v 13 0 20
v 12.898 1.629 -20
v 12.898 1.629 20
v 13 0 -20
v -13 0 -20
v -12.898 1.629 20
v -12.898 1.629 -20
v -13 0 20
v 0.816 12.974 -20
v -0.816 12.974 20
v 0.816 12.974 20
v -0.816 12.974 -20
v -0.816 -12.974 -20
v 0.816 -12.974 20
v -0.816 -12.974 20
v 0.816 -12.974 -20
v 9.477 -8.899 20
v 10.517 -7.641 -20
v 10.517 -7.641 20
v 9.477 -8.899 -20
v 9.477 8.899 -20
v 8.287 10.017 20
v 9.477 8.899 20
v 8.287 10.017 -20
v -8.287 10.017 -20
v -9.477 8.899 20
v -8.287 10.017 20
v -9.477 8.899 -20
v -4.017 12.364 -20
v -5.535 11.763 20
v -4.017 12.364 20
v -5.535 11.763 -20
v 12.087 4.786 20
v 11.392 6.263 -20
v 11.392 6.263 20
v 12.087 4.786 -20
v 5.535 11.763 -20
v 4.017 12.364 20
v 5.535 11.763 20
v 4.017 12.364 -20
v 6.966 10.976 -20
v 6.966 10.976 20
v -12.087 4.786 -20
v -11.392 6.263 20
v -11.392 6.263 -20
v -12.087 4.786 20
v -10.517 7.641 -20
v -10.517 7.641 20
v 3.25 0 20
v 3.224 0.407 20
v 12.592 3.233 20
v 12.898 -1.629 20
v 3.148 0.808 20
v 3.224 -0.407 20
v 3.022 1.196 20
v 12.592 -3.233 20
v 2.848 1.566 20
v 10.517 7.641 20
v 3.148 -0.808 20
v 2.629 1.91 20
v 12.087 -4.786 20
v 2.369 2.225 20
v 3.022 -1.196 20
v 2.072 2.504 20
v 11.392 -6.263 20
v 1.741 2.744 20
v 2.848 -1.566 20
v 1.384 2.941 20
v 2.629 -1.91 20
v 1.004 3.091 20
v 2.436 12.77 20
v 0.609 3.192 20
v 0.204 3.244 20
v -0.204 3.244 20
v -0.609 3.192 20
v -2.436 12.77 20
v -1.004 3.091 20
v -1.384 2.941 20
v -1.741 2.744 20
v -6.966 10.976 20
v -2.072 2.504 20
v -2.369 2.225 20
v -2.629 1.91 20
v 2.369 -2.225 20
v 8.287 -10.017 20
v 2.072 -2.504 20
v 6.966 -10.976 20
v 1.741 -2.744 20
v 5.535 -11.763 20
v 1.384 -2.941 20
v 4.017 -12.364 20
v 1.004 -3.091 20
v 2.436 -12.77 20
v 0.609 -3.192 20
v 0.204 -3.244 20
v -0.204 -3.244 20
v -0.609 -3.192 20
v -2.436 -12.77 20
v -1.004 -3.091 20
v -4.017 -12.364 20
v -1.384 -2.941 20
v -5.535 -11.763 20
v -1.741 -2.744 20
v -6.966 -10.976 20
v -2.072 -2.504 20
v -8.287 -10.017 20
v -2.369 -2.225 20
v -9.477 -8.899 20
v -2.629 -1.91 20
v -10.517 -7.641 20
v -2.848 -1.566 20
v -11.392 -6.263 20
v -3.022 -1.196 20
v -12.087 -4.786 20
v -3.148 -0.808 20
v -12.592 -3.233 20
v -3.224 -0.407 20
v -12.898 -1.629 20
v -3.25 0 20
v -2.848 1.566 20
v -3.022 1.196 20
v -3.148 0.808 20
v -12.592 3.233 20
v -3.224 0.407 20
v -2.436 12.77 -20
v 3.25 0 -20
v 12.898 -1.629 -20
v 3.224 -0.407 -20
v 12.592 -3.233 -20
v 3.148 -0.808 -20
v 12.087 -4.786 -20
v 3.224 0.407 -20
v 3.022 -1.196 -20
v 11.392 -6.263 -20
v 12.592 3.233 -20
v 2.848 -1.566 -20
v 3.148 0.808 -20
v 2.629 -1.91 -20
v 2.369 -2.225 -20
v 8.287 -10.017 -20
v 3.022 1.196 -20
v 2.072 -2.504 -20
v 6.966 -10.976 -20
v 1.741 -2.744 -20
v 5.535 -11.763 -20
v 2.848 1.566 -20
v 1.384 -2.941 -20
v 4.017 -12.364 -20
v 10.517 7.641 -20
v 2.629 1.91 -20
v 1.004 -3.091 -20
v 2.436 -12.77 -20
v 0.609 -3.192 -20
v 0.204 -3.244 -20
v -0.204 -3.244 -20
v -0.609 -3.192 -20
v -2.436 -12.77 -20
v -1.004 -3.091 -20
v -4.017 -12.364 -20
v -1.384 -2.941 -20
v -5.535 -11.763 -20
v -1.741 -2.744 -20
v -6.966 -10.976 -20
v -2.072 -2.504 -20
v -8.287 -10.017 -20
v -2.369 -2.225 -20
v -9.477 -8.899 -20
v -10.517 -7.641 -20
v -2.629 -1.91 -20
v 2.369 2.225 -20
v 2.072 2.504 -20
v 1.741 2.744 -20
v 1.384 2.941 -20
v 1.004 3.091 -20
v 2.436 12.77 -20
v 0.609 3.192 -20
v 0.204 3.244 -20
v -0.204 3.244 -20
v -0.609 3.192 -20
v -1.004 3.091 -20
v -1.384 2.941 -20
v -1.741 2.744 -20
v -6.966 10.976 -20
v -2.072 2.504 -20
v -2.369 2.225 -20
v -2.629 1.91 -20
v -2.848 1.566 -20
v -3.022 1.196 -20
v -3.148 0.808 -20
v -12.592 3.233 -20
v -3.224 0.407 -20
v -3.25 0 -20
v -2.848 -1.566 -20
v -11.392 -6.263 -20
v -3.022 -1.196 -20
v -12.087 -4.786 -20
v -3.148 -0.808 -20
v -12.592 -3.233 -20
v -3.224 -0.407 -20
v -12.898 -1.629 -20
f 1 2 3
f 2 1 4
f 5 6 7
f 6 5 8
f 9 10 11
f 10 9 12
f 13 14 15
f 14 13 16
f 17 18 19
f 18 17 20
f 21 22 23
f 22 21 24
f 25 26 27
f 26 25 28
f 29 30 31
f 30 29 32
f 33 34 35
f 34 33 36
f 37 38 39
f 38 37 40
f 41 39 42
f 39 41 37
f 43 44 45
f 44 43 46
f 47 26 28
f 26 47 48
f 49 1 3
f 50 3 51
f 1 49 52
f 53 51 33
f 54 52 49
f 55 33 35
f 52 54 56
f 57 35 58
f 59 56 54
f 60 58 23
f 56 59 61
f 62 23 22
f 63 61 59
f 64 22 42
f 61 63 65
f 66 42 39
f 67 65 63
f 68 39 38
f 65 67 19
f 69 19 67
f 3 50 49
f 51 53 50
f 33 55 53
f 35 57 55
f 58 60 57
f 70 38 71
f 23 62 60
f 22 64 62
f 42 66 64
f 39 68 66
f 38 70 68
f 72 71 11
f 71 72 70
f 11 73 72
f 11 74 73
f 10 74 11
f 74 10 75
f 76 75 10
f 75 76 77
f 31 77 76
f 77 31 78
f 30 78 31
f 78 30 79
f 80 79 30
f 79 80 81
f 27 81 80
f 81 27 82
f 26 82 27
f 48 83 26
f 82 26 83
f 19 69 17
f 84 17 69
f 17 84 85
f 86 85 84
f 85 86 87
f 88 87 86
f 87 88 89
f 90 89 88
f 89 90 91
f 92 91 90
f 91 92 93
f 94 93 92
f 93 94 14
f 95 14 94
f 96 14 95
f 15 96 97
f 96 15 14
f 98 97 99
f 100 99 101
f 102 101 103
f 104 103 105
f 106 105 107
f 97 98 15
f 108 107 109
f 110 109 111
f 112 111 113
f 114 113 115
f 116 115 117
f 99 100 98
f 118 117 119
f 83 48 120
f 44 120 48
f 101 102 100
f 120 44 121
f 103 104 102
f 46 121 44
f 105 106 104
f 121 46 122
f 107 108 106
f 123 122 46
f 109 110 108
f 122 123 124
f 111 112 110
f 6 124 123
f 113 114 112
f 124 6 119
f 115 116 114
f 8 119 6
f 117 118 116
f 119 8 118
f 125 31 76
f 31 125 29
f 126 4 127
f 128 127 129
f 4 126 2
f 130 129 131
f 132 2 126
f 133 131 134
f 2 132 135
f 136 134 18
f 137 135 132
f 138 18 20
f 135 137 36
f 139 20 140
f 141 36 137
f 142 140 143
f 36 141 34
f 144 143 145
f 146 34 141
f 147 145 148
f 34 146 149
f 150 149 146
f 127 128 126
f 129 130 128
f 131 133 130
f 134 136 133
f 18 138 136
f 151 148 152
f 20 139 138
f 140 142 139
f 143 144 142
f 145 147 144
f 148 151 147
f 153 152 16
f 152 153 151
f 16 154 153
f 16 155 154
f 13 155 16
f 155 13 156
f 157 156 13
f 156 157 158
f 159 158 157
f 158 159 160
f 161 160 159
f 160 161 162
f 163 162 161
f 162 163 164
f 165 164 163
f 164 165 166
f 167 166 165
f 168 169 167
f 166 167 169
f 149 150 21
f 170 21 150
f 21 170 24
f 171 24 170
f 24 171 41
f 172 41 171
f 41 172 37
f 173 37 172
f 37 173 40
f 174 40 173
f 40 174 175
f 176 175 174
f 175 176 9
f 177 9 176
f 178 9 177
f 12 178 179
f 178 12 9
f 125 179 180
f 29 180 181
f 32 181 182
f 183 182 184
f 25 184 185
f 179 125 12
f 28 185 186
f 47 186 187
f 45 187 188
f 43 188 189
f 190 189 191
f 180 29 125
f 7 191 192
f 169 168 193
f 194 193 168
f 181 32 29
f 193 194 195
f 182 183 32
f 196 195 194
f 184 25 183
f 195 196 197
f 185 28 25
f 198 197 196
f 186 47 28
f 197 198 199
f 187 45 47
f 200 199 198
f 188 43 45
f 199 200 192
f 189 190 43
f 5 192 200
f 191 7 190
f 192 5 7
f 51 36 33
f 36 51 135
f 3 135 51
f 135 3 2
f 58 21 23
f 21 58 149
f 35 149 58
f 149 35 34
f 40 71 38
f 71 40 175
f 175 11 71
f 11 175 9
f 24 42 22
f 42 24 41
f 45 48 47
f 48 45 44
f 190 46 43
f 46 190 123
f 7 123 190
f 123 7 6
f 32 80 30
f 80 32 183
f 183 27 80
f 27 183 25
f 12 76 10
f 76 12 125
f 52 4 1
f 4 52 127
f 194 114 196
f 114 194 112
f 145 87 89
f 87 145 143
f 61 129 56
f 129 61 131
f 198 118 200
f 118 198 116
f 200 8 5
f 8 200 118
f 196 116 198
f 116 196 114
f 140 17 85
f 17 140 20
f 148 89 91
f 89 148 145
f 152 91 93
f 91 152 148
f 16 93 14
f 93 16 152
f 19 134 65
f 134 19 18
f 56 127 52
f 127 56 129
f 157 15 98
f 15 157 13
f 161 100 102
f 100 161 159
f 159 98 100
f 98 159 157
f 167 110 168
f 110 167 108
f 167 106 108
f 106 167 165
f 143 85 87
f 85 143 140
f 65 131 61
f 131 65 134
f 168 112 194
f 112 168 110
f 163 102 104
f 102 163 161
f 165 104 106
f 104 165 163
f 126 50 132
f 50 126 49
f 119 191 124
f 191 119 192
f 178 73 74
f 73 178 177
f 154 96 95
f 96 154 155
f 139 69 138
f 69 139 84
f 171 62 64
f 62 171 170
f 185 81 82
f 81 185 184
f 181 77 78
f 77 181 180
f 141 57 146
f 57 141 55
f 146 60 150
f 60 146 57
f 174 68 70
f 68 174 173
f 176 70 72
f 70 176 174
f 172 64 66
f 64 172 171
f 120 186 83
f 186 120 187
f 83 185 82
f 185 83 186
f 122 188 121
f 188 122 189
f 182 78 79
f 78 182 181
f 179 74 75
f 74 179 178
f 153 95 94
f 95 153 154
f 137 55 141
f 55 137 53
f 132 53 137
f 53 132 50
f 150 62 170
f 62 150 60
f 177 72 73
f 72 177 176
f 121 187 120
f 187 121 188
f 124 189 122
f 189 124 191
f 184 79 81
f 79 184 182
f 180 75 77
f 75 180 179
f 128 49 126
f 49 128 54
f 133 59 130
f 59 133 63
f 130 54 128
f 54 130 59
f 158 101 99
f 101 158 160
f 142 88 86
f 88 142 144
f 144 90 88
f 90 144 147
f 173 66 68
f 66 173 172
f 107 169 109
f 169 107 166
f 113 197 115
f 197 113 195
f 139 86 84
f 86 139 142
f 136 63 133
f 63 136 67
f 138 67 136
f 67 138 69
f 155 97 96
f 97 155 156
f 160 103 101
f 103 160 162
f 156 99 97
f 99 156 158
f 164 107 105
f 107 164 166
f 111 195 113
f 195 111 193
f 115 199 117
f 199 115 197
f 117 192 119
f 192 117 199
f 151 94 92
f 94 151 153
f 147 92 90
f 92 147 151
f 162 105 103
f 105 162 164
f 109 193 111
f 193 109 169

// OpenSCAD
$fn = 50;


difference() {
	union() {
		translate(v = [0, 0, -20.0000000000]) {
			cylinder(h = 40, r = 13.0000000000);
		}
	}
	union() {
		translate(v = [0, 0, -100.0000000000]) {
			cylinder(h = 200, r = 3.2500000000);
		}
	}
}
